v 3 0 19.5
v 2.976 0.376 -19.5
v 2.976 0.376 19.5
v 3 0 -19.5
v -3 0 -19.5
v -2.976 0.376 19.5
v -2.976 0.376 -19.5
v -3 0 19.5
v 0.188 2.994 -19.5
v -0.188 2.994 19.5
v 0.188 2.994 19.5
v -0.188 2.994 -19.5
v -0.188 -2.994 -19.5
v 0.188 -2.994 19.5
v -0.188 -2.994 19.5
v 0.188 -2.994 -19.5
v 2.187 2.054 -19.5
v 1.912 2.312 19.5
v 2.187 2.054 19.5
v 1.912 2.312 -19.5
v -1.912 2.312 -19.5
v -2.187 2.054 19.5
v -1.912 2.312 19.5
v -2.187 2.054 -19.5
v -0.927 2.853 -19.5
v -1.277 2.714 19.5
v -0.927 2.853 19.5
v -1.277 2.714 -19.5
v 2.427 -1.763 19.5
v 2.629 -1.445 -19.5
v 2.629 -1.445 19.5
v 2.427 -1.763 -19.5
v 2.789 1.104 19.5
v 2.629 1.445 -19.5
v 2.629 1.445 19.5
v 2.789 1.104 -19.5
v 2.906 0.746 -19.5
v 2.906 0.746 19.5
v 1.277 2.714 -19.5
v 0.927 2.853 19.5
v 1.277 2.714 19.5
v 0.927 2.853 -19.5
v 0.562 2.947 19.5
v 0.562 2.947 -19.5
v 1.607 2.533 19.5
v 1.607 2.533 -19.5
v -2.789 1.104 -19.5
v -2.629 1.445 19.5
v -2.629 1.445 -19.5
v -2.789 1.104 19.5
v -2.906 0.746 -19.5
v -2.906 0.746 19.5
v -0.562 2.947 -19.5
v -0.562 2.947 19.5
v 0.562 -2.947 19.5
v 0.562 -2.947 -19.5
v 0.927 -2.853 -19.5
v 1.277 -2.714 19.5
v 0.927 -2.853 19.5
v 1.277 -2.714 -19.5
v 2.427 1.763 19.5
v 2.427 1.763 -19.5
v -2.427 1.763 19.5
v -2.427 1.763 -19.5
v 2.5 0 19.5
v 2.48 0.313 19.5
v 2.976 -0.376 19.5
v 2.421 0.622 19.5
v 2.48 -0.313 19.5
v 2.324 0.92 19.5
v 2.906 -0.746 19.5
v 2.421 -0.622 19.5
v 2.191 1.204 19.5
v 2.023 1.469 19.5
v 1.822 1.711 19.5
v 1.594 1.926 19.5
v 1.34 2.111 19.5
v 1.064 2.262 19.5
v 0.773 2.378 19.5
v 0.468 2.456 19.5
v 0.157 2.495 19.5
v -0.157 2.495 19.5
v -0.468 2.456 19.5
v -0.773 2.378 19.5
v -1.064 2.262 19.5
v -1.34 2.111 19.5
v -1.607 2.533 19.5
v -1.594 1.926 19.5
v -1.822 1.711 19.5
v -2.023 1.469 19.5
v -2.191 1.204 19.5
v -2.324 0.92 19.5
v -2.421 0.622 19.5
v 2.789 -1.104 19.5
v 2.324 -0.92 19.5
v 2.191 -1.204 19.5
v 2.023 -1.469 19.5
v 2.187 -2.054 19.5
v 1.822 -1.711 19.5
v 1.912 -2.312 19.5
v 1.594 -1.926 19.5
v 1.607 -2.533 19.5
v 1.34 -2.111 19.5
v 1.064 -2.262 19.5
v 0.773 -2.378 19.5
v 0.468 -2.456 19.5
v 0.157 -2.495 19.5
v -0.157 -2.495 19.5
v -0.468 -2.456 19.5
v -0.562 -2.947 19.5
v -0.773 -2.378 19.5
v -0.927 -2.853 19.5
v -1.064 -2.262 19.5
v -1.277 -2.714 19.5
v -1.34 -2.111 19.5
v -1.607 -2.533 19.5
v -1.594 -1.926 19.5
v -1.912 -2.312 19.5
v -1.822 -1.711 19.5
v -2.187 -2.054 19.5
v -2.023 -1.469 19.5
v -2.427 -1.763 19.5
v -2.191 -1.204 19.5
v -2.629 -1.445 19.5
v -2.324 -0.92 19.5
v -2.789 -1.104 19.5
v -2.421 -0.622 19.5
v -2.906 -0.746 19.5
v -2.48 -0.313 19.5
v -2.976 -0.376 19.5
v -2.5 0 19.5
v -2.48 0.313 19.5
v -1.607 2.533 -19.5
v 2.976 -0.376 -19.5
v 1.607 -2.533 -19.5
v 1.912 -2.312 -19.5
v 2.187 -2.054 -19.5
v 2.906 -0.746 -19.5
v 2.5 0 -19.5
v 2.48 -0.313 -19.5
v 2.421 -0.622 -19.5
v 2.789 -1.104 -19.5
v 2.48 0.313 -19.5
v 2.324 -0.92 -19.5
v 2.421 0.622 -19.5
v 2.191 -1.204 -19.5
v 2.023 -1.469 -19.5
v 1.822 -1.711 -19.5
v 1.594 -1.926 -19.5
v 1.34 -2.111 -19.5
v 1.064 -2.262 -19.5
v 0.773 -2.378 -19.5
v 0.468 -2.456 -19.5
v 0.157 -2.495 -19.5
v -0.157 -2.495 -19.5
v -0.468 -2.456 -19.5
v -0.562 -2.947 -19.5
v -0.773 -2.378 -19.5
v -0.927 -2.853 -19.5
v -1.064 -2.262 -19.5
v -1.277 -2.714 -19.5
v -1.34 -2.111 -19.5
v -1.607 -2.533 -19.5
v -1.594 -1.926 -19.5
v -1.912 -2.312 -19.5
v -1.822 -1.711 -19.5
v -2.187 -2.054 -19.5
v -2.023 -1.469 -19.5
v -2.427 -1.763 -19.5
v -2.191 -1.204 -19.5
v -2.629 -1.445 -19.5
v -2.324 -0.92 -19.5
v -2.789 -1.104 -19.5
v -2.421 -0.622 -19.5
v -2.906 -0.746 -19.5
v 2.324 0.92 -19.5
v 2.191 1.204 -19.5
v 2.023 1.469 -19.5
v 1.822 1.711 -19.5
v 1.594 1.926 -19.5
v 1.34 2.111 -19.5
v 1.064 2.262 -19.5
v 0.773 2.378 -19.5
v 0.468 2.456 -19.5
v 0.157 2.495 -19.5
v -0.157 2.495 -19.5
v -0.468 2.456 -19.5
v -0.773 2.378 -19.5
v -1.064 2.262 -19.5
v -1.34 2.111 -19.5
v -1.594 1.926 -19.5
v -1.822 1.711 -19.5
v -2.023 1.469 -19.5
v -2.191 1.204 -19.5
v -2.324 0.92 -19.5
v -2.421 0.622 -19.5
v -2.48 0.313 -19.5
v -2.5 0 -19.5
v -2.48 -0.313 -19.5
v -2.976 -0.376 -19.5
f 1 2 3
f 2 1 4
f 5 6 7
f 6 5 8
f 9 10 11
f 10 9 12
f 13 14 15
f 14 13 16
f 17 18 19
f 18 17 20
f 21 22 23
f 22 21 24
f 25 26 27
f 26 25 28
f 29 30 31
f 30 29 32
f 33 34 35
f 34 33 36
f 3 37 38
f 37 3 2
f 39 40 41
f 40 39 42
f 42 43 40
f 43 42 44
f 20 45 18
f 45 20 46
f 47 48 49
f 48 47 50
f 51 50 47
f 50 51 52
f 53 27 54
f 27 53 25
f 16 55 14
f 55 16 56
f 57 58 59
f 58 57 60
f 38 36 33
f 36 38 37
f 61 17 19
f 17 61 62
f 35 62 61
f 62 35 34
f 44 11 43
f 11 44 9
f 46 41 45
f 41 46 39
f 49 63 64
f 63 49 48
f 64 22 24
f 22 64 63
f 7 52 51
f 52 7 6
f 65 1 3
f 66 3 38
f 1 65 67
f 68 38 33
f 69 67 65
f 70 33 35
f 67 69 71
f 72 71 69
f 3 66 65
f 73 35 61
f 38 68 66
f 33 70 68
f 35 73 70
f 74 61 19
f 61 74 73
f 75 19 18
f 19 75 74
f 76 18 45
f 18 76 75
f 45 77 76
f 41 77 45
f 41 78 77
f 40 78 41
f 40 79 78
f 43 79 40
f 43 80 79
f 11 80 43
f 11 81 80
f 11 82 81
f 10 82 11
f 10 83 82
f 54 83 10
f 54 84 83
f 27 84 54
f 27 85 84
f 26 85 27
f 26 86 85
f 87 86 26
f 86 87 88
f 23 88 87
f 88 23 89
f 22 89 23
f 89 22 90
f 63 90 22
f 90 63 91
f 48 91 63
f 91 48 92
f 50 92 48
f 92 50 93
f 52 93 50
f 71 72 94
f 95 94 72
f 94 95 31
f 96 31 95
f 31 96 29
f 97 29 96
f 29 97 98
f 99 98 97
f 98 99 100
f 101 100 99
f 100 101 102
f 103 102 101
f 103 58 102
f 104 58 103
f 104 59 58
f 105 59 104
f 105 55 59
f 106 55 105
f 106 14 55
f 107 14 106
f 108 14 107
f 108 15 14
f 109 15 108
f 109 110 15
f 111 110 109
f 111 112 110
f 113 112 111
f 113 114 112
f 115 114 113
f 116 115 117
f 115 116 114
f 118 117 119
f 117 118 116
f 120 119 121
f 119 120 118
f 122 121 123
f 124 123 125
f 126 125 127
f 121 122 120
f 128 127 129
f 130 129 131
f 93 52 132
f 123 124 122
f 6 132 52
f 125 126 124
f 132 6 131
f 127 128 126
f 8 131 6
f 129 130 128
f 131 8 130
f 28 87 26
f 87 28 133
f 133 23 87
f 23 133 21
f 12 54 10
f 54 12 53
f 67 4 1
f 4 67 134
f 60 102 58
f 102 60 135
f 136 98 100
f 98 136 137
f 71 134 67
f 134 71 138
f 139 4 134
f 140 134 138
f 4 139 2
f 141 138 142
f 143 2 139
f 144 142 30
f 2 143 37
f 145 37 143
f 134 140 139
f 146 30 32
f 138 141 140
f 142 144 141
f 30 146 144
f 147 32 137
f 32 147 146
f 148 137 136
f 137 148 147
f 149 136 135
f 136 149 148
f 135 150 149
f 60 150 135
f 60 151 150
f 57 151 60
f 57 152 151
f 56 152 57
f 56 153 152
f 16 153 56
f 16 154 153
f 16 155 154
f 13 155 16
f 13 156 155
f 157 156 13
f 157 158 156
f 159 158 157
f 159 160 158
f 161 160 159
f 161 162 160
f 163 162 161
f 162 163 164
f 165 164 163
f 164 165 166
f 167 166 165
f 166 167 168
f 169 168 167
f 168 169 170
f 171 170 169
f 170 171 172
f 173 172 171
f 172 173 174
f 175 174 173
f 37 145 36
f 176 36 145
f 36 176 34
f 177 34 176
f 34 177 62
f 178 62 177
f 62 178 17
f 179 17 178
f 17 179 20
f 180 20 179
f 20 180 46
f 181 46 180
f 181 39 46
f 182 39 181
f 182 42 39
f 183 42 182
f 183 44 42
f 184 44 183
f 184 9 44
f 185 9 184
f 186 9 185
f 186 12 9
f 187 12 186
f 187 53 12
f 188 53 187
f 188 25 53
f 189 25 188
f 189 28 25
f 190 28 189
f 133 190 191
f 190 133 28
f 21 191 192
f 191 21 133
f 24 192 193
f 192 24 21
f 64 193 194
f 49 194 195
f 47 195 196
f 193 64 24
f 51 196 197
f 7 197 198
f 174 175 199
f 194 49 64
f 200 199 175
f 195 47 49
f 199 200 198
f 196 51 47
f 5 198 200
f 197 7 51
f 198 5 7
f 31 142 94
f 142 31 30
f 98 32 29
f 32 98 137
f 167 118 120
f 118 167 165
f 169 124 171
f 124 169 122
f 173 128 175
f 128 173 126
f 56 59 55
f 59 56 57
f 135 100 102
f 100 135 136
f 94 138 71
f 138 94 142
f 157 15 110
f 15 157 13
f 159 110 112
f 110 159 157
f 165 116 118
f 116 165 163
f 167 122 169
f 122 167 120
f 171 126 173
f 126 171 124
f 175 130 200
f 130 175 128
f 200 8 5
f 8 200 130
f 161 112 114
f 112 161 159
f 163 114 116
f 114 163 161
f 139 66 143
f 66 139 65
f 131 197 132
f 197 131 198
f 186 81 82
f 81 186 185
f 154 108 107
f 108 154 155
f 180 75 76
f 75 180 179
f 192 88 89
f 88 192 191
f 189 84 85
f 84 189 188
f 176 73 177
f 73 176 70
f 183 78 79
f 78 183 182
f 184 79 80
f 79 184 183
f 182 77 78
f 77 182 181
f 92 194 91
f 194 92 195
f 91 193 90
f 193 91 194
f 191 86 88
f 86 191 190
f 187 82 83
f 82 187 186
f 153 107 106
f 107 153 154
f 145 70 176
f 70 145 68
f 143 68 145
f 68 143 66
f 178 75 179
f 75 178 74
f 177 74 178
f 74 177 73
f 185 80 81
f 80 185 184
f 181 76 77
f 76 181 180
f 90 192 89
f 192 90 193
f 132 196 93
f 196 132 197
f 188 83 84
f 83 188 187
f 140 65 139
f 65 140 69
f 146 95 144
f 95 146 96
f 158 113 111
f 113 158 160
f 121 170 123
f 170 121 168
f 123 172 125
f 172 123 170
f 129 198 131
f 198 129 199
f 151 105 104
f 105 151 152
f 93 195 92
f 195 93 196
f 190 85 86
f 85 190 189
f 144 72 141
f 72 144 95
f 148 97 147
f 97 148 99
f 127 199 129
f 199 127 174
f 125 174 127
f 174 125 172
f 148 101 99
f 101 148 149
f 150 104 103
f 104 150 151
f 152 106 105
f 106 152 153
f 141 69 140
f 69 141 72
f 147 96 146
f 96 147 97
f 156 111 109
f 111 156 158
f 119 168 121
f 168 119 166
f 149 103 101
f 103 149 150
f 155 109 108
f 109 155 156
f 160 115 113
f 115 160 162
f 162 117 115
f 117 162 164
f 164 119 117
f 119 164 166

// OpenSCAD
$fn = 50;


difference() {
	union() {
		translate(v = [0, 0, -19.5000000000]) {
			cylinder(h = 39, r = 3.0000000000);
		}
	}
	union() {
		translate(v = [0, 0, -100.0000000000]) {
			cylinder(h = 200, r = 2.5000000000);
		}
	}
}
